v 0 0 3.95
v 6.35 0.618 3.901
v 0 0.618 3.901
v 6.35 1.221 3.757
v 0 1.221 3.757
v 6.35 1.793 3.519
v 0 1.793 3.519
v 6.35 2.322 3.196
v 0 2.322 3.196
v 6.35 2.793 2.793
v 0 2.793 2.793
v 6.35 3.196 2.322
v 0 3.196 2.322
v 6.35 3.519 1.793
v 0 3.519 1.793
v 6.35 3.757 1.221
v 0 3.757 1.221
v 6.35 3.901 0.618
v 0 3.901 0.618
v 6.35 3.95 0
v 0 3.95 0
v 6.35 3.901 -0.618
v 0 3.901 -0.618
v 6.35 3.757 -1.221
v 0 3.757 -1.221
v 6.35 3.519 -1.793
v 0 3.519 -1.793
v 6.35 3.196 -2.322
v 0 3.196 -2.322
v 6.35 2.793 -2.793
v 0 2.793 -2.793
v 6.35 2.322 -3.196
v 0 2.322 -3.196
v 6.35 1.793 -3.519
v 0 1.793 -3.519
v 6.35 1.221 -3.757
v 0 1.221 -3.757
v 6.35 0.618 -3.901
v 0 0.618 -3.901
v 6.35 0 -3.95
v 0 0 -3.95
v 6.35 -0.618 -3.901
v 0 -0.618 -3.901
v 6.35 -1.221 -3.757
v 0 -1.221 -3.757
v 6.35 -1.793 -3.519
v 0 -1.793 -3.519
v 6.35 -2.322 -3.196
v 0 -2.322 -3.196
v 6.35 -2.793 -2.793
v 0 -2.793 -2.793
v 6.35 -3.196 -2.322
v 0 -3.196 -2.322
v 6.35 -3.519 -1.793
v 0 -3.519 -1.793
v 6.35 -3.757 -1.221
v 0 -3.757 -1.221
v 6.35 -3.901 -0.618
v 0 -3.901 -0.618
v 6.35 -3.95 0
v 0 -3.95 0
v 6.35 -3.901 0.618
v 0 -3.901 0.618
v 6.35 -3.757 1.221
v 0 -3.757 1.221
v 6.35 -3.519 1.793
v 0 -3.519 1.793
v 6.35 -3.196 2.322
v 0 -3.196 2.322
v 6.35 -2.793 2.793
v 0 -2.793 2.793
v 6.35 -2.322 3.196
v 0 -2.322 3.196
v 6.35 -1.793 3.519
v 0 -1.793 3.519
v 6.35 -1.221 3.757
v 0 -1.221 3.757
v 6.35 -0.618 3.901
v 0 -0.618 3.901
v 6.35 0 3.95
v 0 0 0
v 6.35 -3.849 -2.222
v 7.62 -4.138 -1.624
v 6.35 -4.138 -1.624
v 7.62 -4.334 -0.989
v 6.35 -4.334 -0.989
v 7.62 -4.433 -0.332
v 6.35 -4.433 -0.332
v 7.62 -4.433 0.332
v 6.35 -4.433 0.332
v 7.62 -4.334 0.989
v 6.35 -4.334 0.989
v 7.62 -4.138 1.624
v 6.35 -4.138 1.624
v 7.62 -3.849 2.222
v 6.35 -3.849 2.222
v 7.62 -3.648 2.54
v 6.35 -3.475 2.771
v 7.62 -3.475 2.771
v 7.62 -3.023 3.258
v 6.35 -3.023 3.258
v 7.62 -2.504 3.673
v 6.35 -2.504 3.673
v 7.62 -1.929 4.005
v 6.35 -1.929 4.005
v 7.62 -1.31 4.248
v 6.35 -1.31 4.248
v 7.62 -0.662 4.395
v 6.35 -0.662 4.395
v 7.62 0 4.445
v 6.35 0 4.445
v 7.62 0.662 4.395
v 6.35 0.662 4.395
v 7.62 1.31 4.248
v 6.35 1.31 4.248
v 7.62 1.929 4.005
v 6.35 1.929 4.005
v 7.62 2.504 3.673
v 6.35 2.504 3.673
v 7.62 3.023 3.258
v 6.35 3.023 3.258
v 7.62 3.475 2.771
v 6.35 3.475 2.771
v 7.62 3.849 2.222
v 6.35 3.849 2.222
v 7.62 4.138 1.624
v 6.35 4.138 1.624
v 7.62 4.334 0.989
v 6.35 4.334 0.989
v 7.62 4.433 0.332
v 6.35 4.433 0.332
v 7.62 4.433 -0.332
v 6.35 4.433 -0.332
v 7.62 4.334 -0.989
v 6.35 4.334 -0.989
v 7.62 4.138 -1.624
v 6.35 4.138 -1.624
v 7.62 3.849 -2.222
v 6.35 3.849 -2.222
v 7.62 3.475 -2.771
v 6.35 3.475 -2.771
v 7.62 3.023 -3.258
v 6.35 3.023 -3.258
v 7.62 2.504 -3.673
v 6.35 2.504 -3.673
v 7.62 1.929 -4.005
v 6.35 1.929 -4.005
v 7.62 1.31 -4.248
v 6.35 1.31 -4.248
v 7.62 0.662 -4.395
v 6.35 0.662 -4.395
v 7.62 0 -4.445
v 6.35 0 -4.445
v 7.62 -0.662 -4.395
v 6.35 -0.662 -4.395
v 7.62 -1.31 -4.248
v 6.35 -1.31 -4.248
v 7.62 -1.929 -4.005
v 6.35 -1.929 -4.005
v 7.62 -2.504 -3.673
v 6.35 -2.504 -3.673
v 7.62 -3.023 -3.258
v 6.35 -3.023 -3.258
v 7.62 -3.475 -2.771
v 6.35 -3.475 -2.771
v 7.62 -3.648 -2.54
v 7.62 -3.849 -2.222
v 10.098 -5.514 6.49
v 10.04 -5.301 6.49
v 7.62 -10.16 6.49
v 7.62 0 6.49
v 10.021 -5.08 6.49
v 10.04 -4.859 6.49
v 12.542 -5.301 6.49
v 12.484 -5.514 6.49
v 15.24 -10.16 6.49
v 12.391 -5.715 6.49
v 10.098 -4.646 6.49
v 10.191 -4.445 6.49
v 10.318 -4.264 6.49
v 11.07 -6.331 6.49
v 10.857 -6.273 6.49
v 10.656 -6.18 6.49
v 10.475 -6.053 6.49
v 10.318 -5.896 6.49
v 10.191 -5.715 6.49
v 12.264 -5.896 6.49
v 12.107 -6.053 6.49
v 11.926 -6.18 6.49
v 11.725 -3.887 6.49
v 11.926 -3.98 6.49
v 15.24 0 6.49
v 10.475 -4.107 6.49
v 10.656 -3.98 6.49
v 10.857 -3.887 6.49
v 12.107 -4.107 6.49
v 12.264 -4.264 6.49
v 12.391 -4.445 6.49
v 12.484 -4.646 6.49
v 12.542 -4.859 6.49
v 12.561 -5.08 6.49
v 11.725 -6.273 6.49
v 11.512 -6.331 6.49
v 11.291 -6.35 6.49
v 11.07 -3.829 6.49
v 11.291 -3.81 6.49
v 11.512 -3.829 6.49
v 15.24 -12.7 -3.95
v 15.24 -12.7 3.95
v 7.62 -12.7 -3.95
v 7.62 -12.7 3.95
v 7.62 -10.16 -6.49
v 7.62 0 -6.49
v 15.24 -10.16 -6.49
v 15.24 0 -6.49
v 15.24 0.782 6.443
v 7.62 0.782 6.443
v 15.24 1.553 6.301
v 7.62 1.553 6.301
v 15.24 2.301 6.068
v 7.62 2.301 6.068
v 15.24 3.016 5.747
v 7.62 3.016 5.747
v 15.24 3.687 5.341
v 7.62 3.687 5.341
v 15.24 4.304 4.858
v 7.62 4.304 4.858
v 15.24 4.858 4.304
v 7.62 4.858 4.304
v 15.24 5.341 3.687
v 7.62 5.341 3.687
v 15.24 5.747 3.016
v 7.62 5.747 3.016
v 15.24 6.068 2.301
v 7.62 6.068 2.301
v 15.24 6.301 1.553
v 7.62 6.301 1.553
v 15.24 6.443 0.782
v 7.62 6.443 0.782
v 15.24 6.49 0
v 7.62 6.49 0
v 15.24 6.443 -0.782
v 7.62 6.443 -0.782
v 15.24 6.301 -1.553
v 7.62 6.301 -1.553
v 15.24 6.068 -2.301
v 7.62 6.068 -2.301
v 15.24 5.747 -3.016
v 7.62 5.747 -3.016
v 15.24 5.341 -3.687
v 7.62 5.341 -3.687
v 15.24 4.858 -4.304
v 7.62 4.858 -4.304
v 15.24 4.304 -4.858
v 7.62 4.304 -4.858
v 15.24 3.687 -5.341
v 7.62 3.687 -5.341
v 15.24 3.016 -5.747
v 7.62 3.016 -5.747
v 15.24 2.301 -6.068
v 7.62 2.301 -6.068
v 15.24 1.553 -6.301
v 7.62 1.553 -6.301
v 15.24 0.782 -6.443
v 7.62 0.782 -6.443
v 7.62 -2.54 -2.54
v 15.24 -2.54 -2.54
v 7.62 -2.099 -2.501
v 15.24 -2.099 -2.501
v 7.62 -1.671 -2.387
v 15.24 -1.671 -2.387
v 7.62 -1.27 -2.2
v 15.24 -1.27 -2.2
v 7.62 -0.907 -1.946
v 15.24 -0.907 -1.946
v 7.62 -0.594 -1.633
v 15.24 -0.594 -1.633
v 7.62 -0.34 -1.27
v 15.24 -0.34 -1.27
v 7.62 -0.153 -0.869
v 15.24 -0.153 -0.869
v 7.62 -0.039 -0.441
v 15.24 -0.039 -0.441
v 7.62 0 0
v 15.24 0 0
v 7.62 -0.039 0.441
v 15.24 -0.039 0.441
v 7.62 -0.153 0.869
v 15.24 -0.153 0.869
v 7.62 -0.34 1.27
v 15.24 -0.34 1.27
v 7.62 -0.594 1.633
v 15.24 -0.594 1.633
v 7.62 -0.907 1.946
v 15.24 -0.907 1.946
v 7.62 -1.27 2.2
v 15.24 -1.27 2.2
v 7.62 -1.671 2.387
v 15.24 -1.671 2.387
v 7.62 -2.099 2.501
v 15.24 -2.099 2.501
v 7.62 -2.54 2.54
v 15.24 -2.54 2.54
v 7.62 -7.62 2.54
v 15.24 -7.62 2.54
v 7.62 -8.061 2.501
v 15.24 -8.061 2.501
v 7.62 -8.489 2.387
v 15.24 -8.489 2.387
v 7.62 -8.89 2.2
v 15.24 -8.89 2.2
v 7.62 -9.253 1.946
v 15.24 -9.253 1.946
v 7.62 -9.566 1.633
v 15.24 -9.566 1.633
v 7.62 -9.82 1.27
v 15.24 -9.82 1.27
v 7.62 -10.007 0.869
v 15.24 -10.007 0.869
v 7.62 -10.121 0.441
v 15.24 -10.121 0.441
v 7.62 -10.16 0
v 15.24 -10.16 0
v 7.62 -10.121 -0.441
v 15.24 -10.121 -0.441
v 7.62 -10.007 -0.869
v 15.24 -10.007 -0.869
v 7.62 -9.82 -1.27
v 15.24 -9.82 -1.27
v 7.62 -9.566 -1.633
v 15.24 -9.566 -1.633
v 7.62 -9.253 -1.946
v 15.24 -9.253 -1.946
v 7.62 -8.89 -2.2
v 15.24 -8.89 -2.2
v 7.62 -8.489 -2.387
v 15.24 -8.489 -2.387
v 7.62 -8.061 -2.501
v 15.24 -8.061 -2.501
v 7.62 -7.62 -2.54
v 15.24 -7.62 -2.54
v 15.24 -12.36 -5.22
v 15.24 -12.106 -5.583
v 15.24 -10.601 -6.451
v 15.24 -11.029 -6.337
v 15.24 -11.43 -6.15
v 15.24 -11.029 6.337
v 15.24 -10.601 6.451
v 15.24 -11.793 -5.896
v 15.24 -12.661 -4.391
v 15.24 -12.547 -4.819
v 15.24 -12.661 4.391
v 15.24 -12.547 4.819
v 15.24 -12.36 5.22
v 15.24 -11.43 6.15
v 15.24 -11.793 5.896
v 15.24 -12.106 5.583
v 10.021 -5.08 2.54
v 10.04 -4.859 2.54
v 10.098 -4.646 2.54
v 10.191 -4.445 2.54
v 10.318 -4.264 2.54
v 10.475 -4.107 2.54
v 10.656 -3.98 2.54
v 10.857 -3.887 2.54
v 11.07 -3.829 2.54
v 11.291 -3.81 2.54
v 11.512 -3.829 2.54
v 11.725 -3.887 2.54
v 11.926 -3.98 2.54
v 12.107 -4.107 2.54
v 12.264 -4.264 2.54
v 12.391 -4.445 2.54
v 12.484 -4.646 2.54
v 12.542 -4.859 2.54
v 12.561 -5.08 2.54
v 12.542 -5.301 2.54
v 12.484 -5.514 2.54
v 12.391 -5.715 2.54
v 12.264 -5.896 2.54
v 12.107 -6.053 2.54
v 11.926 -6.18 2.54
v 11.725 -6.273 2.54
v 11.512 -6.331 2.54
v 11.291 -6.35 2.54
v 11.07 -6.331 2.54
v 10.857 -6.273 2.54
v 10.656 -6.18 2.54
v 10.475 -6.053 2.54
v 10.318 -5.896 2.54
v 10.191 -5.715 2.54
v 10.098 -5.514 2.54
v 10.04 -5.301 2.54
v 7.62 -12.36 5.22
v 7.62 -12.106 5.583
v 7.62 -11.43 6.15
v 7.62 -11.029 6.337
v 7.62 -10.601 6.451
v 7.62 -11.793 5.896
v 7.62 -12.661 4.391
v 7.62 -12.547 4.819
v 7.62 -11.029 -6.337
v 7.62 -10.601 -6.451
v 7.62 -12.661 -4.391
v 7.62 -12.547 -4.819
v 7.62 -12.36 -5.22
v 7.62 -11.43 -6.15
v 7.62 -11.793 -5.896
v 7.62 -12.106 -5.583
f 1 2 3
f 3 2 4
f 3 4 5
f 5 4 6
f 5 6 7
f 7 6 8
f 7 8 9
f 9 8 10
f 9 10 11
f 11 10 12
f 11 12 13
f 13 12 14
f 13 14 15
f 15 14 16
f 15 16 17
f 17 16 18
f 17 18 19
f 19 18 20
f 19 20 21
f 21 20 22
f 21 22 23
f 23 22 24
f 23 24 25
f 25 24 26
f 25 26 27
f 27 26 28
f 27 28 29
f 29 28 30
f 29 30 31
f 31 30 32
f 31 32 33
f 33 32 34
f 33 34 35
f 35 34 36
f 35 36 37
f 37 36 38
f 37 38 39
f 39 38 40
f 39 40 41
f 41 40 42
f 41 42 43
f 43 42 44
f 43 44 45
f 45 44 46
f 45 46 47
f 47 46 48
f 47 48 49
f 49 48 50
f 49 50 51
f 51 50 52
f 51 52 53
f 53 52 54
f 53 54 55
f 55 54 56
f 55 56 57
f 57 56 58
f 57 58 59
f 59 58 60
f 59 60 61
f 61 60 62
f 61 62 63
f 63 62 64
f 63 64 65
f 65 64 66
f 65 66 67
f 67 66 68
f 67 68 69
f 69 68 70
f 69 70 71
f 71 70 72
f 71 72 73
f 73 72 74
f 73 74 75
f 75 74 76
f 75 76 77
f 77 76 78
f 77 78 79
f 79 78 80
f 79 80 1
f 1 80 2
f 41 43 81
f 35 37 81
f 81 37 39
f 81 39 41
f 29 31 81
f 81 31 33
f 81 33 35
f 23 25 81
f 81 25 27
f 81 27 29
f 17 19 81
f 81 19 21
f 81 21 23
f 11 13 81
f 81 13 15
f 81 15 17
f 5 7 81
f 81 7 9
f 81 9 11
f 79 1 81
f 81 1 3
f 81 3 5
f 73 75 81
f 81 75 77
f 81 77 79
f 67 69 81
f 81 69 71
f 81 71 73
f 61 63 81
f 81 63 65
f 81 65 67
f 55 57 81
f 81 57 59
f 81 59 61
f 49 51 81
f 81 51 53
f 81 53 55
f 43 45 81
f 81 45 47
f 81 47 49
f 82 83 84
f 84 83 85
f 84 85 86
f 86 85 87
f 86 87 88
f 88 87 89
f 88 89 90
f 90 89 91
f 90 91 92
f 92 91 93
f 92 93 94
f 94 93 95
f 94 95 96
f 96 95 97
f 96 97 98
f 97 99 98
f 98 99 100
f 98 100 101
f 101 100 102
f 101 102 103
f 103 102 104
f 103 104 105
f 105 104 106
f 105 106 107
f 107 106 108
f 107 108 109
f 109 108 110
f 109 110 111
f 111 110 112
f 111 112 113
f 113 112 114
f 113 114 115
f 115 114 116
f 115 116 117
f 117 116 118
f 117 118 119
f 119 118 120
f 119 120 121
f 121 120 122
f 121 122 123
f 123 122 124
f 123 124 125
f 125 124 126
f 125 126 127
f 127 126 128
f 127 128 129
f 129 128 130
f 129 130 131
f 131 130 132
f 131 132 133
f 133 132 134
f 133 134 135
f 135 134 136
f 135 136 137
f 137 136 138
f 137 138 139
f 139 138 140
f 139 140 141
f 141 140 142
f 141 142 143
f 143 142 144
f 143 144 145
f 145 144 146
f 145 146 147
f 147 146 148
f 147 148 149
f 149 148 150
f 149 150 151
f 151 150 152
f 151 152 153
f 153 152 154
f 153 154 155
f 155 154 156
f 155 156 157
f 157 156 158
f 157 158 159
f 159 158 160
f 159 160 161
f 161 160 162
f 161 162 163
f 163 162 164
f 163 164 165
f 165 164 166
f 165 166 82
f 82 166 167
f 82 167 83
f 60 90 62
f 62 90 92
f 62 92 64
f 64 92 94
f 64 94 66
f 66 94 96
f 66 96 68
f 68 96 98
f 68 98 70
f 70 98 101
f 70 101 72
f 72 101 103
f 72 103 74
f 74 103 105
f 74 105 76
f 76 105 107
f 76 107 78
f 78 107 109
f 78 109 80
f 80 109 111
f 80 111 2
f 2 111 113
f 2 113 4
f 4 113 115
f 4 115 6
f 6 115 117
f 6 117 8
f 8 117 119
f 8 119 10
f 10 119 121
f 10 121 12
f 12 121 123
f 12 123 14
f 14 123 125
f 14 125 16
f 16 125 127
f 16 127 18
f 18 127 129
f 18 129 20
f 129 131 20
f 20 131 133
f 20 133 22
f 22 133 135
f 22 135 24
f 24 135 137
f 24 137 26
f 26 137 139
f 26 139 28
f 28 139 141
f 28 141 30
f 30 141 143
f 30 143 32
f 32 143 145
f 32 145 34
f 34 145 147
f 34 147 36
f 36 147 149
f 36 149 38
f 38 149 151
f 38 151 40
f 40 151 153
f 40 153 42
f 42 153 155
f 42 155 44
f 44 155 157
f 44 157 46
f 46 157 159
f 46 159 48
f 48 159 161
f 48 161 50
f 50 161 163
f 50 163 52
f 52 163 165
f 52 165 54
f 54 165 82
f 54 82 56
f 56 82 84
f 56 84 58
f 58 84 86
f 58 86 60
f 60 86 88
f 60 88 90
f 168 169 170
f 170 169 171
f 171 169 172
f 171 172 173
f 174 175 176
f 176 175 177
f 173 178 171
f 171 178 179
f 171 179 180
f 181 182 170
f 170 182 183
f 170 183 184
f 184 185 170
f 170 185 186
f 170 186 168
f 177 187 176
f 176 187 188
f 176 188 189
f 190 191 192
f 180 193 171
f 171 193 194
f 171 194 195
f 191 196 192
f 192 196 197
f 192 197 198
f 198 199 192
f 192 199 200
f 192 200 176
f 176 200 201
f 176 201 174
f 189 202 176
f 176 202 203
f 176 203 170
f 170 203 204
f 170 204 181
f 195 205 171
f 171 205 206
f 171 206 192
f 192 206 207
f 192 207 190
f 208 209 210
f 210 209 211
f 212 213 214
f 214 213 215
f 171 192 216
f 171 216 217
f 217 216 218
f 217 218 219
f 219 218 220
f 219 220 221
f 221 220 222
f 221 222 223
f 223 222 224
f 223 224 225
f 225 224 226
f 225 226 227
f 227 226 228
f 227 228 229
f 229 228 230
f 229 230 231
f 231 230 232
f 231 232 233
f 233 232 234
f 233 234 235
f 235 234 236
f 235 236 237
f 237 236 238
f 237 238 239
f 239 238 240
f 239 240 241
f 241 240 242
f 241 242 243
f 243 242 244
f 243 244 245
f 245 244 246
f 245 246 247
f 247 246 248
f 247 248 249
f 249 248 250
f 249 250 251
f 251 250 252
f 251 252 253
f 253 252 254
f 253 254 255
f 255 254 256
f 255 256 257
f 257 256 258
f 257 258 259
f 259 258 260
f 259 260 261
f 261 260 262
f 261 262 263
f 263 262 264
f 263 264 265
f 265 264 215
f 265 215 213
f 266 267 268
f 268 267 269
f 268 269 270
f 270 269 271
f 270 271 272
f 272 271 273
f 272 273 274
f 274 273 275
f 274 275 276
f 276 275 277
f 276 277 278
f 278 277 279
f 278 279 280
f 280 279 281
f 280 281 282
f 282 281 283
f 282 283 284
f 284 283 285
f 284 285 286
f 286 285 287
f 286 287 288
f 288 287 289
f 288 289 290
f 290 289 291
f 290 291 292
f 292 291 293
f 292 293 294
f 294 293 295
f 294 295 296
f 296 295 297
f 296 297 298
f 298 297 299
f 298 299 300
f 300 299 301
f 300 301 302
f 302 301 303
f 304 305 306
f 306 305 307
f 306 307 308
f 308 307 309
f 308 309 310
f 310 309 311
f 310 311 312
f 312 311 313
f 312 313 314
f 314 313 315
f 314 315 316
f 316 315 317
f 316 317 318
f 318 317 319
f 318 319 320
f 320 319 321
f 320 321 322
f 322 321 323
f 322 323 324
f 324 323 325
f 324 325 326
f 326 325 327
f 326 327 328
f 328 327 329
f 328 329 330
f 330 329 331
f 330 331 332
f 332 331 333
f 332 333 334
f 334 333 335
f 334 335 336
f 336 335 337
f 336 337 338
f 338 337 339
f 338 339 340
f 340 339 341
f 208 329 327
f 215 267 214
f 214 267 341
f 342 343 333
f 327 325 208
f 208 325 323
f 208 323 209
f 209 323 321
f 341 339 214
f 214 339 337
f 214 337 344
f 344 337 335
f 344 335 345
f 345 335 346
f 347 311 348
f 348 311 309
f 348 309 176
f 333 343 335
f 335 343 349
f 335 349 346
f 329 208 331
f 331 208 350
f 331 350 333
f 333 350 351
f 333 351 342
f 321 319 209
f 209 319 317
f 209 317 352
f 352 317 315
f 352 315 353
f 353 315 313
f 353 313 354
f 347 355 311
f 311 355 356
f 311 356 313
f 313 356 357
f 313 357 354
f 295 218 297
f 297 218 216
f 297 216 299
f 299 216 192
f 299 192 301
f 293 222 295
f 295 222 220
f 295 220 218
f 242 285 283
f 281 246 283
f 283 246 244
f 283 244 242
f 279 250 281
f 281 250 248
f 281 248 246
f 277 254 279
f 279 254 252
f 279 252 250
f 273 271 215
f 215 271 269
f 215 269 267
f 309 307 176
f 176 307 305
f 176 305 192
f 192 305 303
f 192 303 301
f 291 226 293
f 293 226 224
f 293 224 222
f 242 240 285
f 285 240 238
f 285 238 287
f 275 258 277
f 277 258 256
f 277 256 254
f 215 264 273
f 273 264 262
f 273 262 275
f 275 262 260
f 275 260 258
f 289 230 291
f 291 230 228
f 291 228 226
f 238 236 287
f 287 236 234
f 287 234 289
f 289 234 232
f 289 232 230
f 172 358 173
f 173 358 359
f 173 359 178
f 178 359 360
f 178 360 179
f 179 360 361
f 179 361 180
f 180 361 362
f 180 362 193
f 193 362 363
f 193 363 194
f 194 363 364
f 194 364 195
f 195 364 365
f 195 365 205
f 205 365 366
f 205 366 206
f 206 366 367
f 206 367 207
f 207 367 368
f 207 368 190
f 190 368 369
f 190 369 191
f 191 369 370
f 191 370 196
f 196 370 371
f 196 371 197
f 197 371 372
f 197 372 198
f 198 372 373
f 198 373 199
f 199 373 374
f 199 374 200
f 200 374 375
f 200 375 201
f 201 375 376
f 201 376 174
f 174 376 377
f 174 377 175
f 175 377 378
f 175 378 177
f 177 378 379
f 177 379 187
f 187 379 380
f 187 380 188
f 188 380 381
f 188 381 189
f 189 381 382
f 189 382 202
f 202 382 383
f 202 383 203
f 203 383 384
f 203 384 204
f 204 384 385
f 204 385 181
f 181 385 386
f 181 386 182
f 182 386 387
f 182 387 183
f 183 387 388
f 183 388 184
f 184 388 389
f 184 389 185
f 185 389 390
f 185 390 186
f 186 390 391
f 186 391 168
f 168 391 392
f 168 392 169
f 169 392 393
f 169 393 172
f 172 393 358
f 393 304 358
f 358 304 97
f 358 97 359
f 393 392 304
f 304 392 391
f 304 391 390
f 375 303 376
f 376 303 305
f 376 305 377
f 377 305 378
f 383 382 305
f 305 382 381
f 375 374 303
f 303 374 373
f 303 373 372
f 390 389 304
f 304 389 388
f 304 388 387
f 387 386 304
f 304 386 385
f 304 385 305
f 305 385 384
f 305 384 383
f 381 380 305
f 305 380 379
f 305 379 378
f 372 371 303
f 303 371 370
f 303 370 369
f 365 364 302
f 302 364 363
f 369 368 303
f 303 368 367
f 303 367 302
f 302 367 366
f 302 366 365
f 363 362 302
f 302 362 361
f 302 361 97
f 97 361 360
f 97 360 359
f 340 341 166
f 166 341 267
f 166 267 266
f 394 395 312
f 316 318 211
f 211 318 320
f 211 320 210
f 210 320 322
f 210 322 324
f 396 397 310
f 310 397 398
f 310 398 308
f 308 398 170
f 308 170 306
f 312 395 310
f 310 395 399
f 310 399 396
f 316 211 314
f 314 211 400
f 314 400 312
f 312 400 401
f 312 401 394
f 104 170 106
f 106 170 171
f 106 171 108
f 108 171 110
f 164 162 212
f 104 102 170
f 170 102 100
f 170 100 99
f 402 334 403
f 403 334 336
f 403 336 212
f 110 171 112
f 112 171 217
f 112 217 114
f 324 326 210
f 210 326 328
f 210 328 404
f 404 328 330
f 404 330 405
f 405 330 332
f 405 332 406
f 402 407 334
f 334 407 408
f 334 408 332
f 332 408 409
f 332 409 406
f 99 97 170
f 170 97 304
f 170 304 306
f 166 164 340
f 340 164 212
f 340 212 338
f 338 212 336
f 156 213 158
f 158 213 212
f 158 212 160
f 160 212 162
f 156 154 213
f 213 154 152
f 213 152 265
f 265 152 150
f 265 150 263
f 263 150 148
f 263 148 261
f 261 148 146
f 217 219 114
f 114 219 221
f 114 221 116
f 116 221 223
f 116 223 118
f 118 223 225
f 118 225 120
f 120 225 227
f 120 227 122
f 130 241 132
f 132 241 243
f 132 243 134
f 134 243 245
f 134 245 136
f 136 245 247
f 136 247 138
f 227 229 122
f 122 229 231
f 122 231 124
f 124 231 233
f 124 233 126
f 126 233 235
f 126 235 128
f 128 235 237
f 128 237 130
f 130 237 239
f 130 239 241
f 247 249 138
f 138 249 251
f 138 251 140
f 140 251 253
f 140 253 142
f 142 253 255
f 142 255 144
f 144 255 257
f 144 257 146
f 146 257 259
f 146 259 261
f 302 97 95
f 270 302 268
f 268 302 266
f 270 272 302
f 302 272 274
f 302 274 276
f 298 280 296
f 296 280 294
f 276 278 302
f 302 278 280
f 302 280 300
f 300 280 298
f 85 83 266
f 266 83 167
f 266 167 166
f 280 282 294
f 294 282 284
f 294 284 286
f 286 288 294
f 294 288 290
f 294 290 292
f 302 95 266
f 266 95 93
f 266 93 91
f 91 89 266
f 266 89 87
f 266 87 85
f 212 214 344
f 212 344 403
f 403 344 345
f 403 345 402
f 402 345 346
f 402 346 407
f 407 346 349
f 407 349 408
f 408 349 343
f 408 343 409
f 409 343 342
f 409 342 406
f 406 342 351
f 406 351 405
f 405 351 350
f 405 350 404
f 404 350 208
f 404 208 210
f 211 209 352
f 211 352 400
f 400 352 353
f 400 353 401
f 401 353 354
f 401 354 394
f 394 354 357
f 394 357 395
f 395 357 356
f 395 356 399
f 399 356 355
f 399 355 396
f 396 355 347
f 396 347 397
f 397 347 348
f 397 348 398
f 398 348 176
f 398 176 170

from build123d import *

# Parameters (mm, degrees)
SKETCH1_R           = 3.95
BOSS_EXTRUDE1_DEPTH = 7.62
BOSS_EXTRUDE2_DEPTH = 7.62
BOSS_EXTRUDE3_DEPTH = 7.62
CUT_EXTRUDE1_DEPTH  = 7.62
SKETCH6_R           = 1.27
CUT_EXTRUDE2_DEPTH  = 4.9500048
SKETCH7_R           = 4.445
BOSS_EXTRUDE4_DEPTH = 1.27
FILLET1_R           = 2.54


with BuildPart() as part:
    # Sketch1 → Boss-Extrude1 (new body)
    with BuildSketch(Plane(origin=(0, 0, 0), x_dir=(0, 0, -1), z_dir=(1, 0, 0))):
        Circle(SKETCH1_R)
    extrude(amount=BOSS_EXTRUDE1_DEPTH)

    # Sketch2 → Boss-Extrude2 (add)
    with BuildSketch(Plane(origin=(7.62, 0, 0), x_dir=(0, 0, -1), z_dir=(1, 0, 0))):
        with BuildLine():
            Line((-3.95, 0), (-3.95, -10.16))
            Line((-3.95, -10.16), (3.95, -10.16))
            Line((3.95, -10.16), (3.95, 0))
            ThreePointArc((3.95, 0), (0, 3.95), (-3.95, 0))
        make_face()
    extrude(amount=BOSS_EXTRUDE2_DEPTH)

    # Sketch4 → Boss-Extrude3 (add)
    with BuildSketch(Plane(origin=(15.24, 0, 0), x_dir=(0, 0, -1), z_dir=(1, 0, 0))):
        with BuildLine():
            Line((-6.49, 0), (-6.49, -12.7))
            Line((-6.49, -12.7), (6.49, -12.7))
            Line((6.49, -12.7), (6.49, 0))
            ThreePointArc((6.49, 0), (0, 6.49), (-6.49, 0))
        make_face()
        with BuildLine():
            Line((-3.95, 0), (-3.95, -10.16))
            Line((-3.95, -10.16), (3.95, -10.16))
            Line((3.95, -10.16), (3.95, 0))
            ThreePointArc((3.95, 0), (0, 3.95), (-3.95, 0))
        make_face(mode=Mode.SUBTRACT)
    extrude(amount=-BOSS_EXTRUDE3_DEPTH)

    # Sketch5 → Cut-Extrude1 (cut)
    with BuildSketch(Plane(origin=(15.24, 0, 0), x_dir=(0, 0, -1), z_dir=(1, 0, 0))):
        with BuildLine():
            Line((-2.5399952, -2.54), (-2.5399952, -7.62))
            ThreePointArc((-2.5399952, -7.62), (4.8e-06, -10.16), (2.5400048, -7.62))
            Line((2.5400048, -7.62), (2.5400048, -2.54))
            ThreePointArc((2.5400048, -2.54), (4.8e-06, 0), (-2.5399952, -2.54))
        make_face()
    extrude(amount=-CUT_EXTRUDE1_DEPTH, mode=Mode.SUBTRACT)

    # Sketch6 → Cut-Extrude2 (cut, through all)
    with BuildSketch(Plane(origin=(0, 0, 2.5399952), x_dir=(-1, 0, 0), z_dir=(0, 0, -1))):
        with Locations((-11.290974186, -5.08)):
            Circle(SKETCH6_R)
    extrude(amount=-CUT_EXTRUDE2_DEPTH, mode=Mode.SUBTRACT)

    # Sketch7 → Boss-Extrude4 (add)
    with BuildSketch(Plane.ZY.offset(-7.62)):
        Circle(SKETCH7_R)
    extrude(amount=BOSS_EXTRUDE4_DEPTH)

    # Fillet1
    fillet1_edges = [part.edges().sort_by_distance(p)[0] for p in [
        (11.43, -12.7, -6.49),
        (11.43, -12.7, 6.49),
    ]]
    fillet(fillet1_edges, radius=FILLET1_R)


solid = part.part
